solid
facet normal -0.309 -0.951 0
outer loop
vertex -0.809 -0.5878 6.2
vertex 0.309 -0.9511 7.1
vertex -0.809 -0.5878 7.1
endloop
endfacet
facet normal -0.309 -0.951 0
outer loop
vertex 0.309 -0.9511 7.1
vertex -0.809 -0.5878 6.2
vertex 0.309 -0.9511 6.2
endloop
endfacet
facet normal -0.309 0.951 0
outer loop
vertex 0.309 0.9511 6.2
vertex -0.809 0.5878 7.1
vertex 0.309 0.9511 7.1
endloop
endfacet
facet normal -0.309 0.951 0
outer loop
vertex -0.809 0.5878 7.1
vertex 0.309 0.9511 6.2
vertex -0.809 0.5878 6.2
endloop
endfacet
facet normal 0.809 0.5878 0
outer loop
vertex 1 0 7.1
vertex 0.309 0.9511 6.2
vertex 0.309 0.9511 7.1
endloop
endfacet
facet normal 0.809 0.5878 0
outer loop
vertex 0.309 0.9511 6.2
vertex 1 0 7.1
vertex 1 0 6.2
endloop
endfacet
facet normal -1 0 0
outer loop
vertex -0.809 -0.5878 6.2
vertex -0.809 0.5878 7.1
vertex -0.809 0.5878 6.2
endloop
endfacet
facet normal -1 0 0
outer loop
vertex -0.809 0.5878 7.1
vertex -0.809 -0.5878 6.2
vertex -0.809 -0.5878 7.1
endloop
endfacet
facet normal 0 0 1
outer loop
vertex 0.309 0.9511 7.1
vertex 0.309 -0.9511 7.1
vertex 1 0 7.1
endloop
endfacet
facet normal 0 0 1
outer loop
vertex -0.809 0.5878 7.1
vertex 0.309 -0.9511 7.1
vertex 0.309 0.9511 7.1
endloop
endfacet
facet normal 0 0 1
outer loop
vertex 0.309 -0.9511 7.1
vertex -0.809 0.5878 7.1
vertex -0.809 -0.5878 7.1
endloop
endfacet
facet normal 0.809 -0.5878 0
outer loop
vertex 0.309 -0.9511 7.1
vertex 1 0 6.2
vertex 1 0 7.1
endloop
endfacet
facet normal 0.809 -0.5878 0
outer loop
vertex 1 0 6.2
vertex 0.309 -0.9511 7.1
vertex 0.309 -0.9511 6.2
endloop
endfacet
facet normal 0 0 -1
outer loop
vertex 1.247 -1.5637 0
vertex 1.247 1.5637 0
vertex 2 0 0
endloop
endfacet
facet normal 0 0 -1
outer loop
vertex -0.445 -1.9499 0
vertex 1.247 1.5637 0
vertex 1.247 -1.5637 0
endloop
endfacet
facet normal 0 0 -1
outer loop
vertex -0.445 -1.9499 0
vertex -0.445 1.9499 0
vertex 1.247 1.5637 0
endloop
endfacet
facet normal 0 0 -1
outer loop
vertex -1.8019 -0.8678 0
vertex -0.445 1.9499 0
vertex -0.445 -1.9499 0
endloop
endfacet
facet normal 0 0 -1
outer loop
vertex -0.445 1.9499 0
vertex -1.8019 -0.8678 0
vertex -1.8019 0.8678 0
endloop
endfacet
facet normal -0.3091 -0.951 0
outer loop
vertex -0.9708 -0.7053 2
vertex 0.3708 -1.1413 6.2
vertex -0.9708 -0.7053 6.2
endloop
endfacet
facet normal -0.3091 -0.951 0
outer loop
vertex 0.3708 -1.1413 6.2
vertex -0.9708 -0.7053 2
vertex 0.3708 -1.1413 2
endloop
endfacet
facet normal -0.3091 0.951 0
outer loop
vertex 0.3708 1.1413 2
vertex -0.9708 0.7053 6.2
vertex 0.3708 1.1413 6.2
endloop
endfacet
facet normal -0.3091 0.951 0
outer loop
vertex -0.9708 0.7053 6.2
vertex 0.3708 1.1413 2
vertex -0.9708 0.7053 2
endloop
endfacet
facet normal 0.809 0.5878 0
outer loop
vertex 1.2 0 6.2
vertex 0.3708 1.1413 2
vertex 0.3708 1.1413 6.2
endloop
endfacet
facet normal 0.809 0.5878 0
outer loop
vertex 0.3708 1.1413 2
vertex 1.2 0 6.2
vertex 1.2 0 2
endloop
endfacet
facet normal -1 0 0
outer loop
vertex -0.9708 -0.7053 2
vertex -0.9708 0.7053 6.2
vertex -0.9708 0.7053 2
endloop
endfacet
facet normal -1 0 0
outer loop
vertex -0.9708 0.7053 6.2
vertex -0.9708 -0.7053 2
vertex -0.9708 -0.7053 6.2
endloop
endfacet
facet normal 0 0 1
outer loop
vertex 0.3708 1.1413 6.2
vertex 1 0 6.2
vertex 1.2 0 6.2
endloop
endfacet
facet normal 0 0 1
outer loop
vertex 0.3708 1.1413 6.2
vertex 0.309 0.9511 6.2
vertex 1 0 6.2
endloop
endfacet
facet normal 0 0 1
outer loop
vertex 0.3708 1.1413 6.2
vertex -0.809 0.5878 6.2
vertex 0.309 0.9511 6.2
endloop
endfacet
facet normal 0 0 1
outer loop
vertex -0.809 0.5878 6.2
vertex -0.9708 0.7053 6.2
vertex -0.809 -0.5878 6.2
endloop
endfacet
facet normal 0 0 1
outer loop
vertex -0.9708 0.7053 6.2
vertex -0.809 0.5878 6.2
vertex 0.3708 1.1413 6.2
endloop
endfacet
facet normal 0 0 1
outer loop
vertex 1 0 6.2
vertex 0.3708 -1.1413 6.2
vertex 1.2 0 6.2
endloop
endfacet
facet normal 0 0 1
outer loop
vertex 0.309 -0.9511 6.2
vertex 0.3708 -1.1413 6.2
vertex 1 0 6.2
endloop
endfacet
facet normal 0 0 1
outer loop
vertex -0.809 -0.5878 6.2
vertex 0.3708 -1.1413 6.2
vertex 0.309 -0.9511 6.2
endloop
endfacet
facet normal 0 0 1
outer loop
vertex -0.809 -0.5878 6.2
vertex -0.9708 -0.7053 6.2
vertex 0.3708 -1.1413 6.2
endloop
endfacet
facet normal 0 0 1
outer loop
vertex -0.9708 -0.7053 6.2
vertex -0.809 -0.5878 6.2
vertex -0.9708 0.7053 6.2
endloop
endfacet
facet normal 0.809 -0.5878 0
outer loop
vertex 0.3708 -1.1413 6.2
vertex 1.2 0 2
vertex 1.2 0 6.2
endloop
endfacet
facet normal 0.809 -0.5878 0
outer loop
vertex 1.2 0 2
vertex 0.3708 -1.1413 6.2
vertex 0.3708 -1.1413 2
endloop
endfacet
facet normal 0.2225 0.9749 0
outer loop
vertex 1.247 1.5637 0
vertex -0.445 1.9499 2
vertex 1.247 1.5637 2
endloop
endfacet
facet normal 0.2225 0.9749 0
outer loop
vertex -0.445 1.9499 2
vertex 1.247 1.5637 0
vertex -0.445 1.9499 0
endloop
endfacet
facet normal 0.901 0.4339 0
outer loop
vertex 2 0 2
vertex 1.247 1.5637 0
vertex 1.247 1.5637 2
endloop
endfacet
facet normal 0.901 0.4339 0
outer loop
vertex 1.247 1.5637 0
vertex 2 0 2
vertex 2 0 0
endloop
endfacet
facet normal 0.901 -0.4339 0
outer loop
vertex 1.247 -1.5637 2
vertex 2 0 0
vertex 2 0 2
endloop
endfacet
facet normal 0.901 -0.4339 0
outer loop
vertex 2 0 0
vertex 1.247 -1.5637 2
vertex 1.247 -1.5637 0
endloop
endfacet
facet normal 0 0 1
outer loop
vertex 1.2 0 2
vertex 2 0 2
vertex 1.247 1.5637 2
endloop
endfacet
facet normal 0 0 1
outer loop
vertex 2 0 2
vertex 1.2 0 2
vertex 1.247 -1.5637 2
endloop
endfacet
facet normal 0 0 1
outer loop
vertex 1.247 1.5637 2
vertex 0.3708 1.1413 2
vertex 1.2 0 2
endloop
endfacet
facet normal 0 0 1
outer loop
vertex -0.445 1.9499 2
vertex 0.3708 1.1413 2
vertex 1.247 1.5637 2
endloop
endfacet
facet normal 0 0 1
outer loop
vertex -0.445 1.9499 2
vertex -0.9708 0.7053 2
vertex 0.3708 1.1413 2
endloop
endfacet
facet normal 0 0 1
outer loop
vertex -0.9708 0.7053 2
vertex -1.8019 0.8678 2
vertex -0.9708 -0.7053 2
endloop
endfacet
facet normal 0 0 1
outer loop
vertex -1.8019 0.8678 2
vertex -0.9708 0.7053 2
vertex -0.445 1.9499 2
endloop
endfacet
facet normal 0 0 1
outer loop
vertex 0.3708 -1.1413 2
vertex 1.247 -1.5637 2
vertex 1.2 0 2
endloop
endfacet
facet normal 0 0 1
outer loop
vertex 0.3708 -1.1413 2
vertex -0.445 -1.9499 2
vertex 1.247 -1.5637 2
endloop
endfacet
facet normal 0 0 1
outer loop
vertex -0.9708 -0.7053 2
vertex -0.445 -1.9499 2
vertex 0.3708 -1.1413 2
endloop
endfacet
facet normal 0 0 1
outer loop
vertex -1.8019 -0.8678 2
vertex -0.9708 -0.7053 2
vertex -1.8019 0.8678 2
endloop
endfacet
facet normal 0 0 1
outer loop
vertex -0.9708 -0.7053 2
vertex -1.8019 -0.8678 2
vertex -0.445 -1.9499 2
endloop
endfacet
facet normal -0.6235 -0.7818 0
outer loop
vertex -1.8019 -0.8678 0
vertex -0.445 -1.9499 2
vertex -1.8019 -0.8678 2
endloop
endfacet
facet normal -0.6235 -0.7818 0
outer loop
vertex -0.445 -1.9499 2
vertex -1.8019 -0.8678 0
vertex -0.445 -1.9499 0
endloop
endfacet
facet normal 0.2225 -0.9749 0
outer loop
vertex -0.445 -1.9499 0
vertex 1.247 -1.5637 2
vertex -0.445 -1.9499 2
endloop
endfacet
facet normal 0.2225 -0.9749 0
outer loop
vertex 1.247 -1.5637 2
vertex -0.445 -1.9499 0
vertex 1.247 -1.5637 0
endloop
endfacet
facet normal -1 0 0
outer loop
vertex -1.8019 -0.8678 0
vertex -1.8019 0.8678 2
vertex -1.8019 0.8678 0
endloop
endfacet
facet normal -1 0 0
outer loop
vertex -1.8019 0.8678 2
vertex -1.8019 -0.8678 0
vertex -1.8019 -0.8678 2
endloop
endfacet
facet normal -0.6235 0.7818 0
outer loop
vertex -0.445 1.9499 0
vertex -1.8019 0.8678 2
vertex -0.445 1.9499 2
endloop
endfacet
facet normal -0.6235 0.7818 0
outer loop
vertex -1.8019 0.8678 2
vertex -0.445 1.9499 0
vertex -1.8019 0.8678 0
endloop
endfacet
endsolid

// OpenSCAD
cylinder(h=7.1,r=1);
cylinder(h=6.2,r=1.2);
cylinder(h=2,r=2);
